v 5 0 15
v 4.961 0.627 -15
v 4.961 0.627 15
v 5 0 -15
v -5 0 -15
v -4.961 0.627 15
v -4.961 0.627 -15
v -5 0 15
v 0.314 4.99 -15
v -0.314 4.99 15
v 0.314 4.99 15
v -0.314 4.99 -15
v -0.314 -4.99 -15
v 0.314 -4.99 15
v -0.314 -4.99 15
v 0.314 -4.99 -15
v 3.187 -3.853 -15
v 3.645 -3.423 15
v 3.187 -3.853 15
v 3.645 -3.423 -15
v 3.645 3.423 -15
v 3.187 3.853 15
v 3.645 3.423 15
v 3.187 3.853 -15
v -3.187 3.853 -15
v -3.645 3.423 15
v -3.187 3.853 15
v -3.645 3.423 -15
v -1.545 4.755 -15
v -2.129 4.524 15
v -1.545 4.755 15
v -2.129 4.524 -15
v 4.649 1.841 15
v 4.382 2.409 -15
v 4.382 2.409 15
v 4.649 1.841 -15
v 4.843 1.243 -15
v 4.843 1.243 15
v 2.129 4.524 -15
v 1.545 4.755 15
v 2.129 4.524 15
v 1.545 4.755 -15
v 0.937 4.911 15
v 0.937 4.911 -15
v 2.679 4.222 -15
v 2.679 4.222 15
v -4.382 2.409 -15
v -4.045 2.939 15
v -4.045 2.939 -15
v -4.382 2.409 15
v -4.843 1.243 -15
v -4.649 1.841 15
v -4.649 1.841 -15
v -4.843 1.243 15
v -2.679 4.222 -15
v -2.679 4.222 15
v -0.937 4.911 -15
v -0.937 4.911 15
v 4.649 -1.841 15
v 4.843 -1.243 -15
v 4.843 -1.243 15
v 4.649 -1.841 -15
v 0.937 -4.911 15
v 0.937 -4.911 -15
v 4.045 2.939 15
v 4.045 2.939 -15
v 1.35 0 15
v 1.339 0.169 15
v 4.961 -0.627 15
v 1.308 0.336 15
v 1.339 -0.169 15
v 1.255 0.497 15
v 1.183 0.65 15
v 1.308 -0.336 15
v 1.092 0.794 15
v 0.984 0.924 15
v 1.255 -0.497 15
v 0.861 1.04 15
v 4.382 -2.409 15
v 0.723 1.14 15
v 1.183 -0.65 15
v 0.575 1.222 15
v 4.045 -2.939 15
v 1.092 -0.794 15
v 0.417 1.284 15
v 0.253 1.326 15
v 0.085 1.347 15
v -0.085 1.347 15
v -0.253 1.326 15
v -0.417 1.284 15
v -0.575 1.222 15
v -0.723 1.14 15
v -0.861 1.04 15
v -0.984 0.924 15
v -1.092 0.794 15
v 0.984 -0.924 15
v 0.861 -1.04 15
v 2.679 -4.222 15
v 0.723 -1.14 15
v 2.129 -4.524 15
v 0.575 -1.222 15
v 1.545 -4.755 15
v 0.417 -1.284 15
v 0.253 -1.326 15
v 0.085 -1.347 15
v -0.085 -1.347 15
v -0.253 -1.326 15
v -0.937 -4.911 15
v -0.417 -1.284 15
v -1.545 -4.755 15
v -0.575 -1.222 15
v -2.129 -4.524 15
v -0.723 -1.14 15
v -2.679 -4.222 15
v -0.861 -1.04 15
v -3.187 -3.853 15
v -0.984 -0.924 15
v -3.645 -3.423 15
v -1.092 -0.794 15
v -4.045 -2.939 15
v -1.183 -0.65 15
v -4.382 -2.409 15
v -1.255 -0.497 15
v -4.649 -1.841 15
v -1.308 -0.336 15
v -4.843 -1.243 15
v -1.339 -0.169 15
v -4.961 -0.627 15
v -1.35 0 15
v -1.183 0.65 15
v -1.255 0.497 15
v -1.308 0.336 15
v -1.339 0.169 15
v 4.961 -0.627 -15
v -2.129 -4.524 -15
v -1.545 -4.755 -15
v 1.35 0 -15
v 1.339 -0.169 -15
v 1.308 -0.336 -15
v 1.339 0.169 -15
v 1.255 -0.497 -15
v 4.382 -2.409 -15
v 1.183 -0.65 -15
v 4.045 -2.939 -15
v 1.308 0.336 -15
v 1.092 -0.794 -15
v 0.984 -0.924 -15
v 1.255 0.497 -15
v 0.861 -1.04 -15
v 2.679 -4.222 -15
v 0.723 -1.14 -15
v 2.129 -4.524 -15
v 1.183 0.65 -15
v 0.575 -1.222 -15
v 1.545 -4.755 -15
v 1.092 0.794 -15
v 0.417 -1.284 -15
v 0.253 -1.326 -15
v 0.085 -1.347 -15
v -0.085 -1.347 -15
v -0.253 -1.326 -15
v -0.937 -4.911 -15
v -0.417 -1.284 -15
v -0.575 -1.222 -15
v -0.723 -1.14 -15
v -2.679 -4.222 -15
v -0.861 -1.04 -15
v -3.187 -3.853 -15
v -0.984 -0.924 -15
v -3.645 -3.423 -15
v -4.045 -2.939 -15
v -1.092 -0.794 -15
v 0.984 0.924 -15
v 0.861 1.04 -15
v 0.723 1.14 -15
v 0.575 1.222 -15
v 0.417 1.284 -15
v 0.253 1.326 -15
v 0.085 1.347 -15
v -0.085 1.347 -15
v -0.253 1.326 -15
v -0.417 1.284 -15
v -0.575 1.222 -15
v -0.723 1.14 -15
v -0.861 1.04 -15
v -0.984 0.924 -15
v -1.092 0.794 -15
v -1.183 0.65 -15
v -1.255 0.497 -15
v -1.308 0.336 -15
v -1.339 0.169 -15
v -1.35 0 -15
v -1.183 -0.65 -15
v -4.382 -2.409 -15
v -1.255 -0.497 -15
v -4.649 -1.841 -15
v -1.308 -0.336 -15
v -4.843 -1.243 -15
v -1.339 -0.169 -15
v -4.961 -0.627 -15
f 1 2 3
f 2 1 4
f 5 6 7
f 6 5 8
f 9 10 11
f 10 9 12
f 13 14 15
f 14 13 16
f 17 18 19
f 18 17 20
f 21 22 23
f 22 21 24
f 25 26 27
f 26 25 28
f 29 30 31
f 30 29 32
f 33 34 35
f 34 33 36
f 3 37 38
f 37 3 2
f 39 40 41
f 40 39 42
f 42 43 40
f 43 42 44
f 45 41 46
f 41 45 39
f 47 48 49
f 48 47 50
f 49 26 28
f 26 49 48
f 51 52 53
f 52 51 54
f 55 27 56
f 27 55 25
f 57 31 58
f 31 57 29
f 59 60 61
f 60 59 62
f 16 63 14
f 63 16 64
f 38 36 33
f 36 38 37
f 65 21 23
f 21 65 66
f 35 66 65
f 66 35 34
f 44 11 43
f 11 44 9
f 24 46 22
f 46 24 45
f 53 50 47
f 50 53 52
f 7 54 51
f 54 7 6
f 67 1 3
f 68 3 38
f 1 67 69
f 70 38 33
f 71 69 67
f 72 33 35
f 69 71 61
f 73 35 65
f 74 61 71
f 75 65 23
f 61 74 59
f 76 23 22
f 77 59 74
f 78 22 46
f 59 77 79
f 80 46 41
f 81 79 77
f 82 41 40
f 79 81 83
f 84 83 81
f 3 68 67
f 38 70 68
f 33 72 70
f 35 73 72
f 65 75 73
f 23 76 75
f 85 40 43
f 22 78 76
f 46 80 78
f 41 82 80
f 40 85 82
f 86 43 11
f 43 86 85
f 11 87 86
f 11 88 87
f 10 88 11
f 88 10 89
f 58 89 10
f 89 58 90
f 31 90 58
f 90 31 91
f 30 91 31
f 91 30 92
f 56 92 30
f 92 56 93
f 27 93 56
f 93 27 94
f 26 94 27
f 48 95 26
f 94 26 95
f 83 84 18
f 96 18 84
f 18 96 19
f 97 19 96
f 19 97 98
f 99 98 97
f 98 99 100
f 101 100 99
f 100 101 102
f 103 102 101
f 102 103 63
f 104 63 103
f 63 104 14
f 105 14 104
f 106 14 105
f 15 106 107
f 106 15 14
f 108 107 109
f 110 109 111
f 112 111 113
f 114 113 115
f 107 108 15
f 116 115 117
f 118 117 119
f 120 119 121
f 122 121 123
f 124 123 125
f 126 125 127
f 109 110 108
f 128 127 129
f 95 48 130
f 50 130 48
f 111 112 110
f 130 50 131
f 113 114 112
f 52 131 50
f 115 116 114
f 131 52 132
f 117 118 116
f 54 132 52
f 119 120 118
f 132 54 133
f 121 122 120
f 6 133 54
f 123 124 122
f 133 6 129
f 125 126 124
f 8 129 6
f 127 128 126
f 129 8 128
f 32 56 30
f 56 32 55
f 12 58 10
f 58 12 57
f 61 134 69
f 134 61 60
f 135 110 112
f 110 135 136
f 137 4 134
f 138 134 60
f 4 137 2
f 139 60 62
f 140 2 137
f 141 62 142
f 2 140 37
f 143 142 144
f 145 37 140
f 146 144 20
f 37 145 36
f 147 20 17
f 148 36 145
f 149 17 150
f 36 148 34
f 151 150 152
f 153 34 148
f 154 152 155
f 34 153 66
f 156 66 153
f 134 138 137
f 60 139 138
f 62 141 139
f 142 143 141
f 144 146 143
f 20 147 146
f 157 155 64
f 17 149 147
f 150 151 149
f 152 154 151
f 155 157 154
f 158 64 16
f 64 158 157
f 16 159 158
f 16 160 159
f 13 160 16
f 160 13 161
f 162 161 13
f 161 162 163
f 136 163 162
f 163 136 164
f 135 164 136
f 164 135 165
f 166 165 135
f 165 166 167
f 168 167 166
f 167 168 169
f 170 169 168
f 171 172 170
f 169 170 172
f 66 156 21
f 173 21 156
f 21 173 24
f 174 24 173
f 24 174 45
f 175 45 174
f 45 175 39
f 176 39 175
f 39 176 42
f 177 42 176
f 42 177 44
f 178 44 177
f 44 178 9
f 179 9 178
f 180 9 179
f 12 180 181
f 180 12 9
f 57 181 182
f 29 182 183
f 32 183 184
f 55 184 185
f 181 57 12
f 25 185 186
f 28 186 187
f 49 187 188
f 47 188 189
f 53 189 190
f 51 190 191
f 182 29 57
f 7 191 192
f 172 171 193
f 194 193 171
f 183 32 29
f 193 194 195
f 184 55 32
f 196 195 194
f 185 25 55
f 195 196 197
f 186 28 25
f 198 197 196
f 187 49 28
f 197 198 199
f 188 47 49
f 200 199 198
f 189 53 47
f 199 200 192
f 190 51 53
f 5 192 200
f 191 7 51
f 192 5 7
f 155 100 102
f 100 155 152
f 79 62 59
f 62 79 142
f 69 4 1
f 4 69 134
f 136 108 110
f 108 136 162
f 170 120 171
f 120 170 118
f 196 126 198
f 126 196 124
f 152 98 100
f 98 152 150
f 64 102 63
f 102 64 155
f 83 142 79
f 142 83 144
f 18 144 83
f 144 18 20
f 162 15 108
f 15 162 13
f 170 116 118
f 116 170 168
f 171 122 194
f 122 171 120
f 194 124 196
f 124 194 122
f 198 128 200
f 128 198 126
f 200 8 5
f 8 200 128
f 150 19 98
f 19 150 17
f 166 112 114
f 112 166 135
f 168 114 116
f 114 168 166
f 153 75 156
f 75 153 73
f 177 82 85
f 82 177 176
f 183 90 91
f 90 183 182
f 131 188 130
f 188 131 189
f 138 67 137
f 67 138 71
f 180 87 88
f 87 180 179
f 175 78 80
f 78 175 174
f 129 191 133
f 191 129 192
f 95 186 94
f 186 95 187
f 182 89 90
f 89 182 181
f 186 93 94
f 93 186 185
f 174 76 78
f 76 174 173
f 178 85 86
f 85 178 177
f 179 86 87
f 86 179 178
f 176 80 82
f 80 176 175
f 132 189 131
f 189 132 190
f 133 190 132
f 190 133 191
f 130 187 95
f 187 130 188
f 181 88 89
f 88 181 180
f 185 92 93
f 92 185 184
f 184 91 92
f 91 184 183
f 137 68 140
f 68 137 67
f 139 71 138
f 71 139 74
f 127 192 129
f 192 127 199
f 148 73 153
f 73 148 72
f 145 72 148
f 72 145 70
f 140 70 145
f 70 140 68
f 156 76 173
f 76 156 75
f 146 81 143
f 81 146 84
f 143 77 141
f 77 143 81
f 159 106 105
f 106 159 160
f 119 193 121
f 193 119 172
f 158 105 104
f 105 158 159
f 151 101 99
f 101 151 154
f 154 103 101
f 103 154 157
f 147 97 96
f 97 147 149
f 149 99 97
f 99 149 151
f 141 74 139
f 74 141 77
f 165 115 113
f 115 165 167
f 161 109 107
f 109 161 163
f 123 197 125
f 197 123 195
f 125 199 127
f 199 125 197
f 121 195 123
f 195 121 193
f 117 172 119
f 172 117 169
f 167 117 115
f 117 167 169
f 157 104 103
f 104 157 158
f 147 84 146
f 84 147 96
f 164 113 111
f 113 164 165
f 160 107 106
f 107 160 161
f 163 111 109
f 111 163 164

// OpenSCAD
$fn = 50;


difference() {
	union() {
		translate(v = [0, 0, -15.0000000000]) {
			cylinder(h = 30, r = 5.0000000000);
		}
	}
	union() {
		translate(v = [0, 0, -100.0000000000]) {
			cylinder(h = 200, r = 1.3500000000);
		}
	}
}
